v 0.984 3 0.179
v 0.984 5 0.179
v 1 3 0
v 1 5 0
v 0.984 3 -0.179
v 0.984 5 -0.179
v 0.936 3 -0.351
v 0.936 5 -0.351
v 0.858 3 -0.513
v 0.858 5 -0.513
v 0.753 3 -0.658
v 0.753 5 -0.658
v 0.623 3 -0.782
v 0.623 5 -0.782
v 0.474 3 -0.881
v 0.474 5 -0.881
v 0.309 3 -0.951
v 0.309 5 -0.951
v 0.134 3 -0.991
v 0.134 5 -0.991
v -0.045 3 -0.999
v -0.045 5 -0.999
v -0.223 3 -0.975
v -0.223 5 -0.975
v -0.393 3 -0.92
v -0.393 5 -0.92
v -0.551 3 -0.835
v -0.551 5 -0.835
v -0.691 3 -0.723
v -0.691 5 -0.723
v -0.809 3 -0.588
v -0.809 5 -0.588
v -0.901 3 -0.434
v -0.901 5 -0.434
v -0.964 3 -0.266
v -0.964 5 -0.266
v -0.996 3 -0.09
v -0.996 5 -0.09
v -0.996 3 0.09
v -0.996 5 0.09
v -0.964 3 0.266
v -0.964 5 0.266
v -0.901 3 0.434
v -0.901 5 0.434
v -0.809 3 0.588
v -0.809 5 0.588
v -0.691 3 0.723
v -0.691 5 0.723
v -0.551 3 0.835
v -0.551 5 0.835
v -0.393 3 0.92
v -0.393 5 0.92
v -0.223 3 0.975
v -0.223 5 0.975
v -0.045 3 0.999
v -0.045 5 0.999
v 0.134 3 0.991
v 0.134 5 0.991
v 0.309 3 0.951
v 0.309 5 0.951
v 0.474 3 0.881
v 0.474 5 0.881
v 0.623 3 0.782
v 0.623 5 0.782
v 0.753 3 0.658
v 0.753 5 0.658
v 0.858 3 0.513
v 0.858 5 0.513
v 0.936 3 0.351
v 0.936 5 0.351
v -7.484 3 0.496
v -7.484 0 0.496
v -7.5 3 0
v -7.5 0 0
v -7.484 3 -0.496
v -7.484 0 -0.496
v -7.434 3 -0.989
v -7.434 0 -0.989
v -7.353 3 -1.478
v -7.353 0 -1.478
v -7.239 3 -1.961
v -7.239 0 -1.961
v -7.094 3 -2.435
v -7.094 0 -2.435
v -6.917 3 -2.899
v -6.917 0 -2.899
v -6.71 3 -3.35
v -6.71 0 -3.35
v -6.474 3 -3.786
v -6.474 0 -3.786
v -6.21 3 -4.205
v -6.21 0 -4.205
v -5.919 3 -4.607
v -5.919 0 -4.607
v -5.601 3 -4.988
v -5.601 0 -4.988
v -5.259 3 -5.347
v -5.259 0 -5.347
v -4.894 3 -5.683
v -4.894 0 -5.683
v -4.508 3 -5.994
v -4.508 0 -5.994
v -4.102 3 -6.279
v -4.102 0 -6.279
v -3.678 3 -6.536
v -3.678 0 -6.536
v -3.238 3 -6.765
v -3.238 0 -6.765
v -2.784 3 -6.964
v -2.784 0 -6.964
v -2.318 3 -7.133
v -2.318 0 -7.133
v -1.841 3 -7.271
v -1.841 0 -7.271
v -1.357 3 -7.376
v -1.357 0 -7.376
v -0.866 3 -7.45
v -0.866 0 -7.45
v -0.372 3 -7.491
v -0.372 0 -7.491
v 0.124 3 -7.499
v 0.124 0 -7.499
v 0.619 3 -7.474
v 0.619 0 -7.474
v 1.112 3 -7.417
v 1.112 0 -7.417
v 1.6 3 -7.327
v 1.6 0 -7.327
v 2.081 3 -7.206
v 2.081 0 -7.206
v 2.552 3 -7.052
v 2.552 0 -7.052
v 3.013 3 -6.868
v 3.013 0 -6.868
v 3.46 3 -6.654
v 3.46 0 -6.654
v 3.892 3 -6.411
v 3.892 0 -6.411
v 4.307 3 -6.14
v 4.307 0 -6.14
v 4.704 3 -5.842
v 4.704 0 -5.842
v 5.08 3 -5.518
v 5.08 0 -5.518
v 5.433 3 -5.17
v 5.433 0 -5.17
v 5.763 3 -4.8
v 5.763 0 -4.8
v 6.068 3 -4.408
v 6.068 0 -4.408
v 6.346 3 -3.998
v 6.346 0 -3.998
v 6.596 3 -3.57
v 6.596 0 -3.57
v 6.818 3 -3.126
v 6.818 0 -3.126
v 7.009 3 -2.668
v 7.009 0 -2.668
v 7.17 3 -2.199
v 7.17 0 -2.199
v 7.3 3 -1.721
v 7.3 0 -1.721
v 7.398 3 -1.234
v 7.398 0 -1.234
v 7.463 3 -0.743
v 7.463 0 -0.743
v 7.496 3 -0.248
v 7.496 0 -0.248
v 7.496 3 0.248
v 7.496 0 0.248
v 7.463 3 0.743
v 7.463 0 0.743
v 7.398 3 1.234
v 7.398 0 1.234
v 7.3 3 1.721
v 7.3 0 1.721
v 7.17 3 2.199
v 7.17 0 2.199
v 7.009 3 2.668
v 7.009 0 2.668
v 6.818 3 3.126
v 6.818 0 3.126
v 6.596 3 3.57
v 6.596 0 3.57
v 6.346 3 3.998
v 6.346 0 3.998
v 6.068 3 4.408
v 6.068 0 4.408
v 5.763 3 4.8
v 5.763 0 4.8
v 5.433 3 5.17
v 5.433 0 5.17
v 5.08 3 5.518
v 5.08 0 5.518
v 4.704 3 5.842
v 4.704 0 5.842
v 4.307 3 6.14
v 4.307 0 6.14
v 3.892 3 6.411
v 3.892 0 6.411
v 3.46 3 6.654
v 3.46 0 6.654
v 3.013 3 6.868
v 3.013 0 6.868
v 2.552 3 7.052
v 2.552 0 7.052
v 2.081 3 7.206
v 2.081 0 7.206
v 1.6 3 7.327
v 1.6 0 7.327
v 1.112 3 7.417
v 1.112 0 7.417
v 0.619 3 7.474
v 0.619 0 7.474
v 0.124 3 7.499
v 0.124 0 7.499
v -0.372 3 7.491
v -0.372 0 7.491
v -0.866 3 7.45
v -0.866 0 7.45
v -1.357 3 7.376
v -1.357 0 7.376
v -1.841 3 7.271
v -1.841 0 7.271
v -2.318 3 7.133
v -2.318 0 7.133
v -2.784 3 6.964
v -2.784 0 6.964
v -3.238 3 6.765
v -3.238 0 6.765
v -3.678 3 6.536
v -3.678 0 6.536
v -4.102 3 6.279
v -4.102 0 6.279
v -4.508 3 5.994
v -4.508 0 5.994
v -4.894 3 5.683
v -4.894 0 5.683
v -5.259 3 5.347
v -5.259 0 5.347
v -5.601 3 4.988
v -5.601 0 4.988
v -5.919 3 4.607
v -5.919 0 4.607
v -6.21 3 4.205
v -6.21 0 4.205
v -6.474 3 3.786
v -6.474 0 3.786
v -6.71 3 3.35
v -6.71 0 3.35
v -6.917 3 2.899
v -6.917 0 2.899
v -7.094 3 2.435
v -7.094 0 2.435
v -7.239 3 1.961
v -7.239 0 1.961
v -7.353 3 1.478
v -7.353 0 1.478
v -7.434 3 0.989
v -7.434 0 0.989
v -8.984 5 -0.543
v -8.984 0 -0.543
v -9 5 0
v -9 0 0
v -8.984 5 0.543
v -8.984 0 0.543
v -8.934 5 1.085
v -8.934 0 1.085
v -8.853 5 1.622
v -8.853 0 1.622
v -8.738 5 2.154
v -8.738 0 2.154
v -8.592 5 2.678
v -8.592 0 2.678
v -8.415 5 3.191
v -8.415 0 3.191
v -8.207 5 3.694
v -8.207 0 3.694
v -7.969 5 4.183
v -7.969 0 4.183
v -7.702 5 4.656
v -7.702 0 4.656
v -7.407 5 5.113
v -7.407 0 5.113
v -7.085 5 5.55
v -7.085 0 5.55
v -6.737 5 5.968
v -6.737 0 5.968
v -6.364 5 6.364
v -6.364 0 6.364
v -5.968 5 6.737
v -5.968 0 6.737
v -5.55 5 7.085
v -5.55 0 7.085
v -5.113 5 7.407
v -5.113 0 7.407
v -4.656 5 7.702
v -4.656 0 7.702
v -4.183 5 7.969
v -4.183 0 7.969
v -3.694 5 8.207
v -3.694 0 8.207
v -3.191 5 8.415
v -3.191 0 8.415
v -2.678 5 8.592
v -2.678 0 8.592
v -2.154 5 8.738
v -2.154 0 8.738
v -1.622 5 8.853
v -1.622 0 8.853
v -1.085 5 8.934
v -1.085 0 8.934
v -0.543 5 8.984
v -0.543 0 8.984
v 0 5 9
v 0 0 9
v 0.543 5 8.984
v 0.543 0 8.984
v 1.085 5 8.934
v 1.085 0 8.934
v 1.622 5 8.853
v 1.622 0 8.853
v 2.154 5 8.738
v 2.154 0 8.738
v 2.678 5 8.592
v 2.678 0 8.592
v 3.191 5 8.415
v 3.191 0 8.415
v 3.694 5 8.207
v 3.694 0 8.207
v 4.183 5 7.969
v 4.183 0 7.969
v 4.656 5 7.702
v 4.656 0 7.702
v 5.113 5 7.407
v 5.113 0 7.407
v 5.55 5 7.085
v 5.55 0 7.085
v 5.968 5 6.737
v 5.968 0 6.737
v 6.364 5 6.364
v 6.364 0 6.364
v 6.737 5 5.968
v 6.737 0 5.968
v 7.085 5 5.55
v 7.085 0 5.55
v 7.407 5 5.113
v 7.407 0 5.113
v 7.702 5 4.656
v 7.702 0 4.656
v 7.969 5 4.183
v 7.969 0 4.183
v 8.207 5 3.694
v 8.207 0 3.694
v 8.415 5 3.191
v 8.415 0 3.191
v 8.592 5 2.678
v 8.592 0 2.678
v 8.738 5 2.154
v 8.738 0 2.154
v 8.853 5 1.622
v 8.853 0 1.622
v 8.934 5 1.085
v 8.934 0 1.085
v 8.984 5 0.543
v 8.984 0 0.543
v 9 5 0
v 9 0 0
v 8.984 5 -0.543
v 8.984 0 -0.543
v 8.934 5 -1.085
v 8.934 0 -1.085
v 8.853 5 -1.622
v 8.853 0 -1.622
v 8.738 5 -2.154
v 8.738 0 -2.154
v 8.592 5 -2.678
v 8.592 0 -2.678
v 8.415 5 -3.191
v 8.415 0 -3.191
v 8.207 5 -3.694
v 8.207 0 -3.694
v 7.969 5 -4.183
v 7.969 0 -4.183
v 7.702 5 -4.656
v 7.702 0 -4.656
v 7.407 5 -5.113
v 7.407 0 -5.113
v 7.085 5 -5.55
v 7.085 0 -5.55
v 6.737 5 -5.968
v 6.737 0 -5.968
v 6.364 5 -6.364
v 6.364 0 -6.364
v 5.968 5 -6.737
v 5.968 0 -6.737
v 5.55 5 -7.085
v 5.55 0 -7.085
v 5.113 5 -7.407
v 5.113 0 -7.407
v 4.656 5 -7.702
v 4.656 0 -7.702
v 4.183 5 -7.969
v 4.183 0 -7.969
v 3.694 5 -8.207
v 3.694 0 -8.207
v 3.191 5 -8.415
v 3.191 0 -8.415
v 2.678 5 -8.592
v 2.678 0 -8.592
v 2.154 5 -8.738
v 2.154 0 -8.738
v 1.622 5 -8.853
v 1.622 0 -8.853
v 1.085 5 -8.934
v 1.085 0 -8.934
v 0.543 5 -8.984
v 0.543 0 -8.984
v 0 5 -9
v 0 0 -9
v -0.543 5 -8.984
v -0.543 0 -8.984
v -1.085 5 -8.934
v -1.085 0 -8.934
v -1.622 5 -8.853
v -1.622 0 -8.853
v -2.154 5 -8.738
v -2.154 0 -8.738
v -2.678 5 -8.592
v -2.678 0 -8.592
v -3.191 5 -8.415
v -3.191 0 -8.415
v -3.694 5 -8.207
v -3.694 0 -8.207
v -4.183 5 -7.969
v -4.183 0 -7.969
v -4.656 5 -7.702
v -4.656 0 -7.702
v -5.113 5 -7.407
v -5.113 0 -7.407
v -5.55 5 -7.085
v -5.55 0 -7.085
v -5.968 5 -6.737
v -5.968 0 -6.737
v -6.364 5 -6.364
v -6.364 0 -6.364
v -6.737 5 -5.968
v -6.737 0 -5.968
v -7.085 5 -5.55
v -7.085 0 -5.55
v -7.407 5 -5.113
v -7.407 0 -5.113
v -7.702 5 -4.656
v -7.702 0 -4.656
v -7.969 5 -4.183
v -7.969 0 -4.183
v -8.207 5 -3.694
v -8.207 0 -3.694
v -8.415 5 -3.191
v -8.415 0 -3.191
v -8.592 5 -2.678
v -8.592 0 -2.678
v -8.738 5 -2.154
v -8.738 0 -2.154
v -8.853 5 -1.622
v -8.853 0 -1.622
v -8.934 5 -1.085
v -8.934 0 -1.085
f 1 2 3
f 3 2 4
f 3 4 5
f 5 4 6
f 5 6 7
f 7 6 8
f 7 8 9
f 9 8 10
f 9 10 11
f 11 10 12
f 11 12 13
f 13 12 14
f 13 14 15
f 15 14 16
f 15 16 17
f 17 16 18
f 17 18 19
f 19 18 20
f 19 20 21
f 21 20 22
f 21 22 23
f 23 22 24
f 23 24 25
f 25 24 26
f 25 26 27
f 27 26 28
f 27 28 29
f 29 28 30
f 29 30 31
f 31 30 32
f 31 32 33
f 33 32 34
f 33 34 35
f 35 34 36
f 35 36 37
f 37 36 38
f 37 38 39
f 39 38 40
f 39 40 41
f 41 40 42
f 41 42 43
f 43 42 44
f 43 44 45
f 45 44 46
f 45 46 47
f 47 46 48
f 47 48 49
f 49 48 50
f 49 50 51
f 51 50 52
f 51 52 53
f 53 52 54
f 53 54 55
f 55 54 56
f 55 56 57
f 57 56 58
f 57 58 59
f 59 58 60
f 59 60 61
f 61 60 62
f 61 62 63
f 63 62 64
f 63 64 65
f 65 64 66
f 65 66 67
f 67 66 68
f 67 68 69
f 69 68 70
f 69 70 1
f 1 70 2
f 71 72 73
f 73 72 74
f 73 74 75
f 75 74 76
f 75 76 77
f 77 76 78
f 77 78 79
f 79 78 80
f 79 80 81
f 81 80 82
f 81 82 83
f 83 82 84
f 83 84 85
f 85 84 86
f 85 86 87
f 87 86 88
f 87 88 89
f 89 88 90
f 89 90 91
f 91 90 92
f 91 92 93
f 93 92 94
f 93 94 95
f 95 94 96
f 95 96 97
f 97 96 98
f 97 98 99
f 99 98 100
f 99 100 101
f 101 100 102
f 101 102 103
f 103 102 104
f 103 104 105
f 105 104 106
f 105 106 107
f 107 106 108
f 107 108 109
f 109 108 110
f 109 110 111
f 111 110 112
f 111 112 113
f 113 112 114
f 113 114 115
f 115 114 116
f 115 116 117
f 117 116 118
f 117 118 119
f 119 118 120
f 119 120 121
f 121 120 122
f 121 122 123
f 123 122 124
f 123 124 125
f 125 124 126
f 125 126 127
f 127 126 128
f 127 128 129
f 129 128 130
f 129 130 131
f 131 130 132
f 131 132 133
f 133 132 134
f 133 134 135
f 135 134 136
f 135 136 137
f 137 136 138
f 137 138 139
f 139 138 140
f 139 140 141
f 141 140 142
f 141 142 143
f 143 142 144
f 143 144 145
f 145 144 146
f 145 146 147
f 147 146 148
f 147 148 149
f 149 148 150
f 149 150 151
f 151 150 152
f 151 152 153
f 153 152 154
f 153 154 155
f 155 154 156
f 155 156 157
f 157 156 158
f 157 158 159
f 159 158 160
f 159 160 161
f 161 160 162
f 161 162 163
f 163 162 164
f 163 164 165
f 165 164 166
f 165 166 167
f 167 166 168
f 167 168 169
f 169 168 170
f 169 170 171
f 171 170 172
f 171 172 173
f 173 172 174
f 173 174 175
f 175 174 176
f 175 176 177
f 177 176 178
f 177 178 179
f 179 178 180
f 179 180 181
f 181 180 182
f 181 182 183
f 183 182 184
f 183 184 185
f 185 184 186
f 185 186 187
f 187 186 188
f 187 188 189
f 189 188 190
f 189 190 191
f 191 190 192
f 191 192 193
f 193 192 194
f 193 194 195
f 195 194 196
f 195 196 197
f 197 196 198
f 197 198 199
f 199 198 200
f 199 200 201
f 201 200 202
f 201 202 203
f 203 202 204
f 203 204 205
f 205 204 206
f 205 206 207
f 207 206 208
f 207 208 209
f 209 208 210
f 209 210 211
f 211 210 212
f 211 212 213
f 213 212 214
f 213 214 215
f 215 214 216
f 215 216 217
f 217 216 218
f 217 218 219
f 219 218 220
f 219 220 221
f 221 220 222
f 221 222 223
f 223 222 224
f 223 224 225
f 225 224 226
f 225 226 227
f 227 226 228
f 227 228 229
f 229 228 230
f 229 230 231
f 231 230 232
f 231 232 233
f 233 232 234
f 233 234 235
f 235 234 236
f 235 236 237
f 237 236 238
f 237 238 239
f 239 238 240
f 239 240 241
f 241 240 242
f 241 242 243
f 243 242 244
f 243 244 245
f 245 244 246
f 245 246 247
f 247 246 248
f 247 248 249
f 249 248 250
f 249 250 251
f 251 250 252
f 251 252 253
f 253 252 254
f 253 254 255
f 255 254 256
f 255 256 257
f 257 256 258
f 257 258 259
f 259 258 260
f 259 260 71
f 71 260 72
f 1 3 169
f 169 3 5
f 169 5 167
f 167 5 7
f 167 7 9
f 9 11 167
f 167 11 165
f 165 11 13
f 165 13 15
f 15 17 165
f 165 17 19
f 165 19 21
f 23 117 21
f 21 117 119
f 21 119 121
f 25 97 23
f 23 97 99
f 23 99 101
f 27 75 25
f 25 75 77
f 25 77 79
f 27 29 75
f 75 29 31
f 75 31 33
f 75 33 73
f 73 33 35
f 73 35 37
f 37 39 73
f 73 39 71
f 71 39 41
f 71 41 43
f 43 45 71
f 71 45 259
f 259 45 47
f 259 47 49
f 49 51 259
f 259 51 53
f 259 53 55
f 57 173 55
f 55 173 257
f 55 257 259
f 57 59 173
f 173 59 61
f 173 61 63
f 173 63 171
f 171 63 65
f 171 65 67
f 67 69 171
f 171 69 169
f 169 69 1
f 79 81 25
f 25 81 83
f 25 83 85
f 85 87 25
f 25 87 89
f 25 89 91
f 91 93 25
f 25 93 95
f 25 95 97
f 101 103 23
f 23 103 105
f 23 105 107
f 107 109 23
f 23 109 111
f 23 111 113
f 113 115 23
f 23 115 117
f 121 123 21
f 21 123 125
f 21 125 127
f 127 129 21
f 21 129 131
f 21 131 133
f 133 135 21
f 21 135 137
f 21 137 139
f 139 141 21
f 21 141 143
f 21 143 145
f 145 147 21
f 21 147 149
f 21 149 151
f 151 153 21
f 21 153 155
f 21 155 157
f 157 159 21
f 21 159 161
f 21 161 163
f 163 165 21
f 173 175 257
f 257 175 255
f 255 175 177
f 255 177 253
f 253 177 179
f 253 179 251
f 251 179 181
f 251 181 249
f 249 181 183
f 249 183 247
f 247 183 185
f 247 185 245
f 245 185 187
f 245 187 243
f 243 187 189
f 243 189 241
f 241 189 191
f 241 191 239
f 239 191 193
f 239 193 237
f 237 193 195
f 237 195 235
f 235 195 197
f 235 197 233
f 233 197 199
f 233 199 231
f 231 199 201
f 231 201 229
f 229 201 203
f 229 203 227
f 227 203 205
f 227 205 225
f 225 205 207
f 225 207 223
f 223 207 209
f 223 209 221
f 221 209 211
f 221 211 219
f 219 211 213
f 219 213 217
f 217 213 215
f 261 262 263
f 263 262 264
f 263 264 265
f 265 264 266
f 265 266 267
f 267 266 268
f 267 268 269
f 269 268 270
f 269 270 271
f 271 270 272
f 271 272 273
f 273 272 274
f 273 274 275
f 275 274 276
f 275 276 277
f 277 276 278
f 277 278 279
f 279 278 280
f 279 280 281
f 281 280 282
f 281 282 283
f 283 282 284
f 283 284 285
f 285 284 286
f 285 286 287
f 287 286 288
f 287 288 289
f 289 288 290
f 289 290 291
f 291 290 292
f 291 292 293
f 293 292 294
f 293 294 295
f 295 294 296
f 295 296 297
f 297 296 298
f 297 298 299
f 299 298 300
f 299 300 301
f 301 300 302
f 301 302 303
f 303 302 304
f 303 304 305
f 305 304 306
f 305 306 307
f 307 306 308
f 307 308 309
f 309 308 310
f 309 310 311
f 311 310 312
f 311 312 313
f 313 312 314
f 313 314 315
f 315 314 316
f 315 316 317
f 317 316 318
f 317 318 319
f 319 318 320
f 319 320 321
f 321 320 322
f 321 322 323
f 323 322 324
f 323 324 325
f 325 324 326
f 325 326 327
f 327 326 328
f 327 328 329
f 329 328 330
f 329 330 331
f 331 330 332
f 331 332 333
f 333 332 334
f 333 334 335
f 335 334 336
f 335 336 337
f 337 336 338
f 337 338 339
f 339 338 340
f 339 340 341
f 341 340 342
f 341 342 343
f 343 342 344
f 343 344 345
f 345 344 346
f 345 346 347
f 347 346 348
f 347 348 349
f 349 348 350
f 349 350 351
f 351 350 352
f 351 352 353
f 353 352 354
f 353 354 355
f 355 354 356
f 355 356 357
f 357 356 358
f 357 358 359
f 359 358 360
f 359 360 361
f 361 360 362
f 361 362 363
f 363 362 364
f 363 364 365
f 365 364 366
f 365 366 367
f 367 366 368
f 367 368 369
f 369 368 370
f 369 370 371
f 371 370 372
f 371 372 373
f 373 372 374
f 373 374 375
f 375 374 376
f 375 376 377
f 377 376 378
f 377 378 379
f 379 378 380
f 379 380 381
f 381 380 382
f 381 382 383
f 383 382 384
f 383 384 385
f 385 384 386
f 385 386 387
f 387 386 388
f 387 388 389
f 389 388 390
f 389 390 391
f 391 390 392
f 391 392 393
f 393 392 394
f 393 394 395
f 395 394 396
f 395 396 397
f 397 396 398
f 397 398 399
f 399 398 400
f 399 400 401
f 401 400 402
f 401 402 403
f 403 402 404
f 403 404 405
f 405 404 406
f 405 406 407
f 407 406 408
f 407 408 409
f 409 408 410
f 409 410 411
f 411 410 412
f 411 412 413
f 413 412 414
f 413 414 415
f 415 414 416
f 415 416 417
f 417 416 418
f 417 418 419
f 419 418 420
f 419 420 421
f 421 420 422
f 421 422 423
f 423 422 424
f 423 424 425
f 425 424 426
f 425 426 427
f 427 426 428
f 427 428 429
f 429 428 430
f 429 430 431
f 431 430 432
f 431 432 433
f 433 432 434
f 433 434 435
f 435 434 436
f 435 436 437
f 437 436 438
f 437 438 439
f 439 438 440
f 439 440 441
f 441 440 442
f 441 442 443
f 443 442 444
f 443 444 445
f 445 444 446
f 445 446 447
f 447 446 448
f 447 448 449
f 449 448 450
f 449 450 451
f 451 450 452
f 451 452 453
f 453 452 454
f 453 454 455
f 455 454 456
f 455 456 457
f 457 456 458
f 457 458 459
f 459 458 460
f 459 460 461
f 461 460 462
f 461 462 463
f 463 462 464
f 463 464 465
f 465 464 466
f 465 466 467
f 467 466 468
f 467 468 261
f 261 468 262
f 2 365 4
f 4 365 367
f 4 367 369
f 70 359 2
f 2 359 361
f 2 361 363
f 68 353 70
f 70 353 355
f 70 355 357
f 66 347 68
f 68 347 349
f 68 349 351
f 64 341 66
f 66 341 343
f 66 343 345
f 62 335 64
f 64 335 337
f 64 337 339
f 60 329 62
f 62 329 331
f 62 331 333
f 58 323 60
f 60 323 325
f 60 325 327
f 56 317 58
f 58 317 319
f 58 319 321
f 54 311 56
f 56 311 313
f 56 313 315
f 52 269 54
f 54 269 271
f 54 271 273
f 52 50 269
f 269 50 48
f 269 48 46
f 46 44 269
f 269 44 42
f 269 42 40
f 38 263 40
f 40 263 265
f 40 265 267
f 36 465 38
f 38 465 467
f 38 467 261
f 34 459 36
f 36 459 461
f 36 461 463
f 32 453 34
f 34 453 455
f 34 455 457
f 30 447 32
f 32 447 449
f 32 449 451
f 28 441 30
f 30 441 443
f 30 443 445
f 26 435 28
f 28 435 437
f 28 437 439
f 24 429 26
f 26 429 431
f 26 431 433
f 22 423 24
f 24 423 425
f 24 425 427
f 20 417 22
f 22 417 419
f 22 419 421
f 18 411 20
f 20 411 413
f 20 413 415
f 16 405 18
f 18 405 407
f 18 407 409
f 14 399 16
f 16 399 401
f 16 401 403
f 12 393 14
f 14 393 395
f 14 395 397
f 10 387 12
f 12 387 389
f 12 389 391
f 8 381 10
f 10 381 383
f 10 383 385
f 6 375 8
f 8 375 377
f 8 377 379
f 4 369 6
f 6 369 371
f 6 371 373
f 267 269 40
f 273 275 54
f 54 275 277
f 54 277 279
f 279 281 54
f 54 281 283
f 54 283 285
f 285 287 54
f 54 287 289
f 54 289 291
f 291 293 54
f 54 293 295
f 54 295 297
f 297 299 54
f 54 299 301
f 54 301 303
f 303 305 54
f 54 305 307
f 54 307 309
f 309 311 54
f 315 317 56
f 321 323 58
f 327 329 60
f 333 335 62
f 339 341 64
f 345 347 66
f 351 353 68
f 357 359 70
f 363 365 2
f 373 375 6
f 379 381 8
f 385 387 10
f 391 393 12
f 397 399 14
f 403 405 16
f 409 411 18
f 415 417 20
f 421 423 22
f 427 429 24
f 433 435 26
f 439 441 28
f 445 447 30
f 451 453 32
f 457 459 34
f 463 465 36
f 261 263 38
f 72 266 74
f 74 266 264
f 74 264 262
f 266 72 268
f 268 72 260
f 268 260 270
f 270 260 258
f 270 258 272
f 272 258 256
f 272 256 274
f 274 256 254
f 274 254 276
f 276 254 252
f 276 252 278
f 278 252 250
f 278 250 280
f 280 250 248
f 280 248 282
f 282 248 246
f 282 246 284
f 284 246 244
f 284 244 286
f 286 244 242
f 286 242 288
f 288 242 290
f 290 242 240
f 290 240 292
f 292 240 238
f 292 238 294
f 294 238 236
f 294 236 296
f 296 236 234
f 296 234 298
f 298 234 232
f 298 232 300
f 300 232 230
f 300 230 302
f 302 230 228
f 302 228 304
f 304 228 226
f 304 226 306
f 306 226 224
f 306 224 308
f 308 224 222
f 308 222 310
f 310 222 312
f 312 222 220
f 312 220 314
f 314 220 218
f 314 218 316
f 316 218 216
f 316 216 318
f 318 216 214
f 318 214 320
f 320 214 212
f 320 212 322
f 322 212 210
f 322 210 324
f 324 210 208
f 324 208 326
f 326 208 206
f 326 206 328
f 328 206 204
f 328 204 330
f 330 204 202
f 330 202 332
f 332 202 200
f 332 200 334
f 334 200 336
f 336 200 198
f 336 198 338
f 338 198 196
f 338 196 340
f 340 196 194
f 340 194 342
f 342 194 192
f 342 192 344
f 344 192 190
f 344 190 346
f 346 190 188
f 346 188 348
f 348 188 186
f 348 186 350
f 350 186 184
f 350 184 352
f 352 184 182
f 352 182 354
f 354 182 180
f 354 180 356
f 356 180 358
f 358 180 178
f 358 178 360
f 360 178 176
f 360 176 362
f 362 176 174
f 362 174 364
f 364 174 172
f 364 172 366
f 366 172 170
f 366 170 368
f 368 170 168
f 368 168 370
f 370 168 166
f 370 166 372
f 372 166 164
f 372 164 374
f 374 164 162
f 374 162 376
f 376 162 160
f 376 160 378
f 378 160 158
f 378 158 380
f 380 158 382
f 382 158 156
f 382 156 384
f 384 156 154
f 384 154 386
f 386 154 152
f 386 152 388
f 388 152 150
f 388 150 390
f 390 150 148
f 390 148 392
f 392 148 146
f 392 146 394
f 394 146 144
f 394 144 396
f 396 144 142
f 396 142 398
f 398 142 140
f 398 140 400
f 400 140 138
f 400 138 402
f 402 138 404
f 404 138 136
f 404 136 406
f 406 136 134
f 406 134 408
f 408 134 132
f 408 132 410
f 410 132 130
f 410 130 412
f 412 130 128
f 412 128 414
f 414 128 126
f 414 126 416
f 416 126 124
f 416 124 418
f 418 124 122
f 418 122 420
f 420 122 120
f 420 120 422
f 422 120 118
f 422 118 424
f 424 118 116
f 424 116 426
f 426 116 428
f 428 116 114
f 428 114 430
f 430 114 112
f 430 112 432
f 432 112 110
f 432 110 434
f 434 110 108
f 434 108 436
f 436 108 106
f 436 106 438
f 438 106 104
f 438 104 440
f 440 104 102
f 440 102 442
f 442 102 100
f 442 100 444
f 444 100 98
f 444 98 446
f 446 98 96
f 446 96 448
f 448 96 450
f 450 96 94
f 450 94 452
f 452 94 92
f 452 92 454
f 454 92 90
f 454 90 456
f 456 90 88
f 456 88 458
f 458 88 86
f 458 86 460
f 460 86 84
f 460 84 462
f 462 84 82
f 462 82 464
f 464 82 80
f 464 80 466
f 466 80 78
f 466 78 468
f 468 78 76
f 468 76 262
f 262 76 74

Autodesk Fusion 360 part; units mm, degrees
sketch "Esquisse1" plane through (0, 0, 0) normal (0, 1, 0) x (1, 0, 0)
  circle A0 centre (0, 0) radius 9
  circle A1 centre (0, 0) radius 7.5
  dimension "d1" = 18
  dimension "d6" = 15
extrude "Extrusion2" add sketch "Esquisse1" along normal blind 5 contours A0 | A1
extrude "Extrusion3" cut sketch "Esquisse1" along normal blind 3 contours A1
sketch "Esquisse2" plane through (0, 5, 0) normal (0, 1, 0) x (-1, 0, 0)
  circle A0 centre (0, 0) radius 9
  circle A1 centre (0, 0) radius 1
  dimension "d9" = 2
extrude "Extrusion4" cut sketch "Esquisse2" against normal blind 3 contours A1
